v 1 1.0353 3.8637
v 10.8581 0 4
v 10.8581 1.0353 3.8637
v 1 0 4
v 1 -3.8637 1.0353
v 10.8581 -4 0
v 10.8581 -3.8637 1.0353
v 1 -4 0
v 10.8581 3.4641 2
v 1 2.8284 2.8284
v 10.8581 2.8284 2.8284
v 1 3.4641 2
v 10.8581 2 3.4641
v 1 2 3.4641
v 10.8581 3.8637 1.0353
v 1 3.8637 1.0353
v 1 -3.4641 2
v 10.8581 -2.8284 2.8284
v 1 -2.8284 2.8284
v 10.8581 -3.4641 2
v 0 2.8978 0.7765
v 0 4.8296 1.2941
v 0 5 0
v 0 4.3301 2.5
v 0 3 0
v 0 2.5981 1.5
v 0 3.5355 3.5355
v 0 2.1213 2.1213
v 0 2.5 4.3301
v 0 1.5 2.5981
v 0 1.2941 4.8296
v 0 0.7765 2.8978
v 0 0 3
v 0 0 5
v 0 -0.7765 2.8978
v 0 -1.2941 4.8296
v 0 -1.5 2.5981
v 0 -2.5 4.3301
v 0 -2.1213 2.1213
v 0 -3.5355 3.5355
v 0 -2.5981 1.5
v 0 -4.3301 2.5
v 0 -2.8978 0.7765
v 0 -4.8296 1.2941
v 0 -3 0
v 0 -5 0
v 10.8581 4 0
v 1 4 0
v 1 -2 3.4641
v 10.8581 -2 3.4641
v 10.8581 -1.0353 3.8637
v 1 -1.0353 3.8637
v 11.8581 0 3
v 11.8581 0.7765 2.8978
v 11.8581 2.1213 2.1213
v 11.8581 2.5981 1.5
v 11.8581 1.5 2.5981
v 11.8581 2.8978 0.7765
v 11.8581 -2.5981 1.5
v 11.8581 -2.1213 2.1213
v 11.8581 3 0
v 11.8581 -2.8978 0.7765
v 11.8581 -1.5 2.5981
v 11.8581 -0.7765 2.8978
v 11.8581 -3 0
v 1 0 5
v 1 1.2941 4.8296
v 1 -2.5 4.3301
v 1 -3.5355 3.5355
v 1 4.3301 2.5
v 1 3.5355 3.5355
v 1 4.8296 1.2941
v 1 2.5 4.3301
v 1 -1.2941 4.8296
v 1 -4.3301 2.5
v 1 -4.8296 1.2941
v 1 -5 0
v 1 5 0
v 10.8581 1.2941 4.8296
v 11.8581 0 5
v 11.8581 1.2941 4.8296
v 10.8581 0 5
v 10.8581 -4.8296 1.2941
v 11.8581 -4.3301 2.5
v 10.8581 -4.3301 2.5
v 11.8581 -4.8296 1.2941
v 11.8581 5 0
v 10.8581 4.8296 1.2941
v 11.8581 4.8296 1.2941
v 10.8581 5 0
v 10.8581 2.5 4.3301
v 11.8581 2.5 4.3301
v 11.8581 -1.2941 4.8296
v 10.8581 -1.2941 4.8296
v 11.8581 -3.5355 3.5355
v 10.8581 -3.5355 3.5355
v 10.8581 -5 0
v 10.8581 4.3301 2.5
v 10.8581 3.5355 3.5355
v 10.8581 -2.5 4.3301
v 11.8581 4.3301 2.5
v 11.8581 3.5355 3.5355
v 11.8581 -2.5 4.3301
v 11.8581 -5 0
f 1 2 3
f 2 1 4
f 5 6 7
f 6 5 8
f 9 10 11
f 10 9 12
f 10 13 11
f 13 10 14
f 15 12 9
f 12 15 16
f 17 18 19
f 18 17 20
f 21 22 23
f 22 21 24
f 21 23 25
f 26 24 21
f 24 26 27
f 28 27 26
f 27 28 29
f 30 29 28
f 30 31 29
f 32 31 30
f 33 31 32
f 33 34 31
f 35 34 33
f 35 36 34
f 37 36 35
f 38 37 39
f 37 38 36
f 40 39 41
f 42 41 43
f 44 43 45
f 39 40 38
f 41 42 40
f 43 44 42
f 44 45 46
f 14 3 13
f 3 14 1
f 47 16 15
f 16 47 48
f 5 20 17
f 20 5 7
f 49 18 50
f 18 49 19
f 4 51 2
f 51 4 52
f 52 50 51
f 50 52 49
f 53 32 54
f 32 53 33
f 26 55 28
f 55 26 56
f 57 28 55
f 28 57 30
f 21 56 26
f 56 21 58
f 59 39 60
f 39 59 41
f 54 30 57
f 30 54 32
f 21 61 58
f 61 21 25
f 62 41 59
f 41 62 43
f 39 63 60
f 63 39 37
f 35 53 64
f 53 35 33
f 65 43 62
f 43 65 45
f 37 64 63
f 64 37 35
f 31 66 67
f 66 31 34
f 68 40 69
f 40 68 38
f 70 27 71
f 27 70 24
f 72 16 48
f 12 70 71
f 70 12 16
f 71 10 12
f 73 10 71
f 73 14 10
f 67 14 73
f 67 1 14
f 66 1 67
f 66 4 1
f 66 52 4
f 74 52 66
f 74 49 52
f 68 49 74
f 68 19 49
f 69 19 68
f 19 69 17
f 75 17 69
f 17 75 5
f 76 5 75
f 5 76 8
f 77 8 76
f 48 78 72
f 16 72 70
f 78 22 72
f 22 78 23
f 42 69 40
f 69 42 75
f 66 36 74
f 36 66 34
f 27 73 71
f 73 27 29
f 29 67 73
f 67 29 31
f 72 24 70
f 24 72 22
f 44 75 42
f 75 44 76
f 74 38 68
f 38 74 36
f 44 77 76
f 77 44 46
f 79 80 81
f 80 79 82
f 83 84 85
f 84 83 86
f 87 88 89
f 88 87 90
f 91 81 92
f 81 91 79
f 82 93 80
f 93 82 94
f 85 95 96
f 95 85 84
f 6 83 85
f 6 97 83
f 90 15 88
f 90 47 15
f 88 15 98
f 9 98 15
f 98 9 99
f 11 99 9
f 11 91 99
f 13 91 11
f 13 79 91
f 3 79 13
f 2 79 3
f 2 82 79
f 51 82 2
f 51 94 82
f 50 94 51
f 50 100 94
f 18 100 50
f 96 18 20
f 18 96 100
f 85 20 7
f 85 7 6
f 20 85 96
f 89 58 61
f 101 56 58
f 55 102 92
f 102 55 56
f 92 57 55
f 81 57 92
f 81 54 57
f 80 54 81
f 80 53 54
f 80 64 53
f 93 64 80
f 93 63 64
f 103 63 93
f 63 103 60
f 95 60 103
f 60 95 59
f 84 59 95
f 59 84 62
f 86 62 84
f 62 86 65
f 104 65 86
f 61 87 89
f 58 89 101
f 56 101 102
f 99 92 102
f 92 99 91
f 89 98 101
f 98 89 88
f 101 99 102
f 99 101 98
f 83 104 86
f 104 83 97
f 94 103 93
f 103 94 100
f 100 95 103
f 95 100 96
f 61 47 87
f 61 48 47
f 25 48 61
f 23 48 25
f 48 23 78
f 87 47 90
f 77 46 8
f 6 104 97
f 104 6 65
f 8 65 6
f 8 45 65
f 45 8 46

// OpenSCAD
// file: ../build_environments.scad
// build_environments.scad: modules to build level sections
//

module pool(diameter=10.0, wall_height=2.0, step_width=3.0, connections=[])
{
    difference() {
        union() {
        difference() {
            cylinder(h=0.5,r1=diameter+step_width,r2=diameter+step_width,$fn=48);
            translate([0,0,-0.1])
                cylinder(h=0.7,r1=diameter,r2=diameter,$fn=48);
        }
        difference() {
            cylinder(h=wall_height,r1=diameter+step_width+1.0,r2=diameter+step_width+1.0,$fn=48);
            translate([0,0,-0.1])
                cylinder(h=wall_height+0.2,r1=diameter+step_width,r2=diameter+step_width,$fn=48);
        }
        }
    
        for (c = connections)
        {
            rotate([0,90,0]) {
                angle = atan2(c[1],c[0]);
                rotate([-angle,0,0]) {
                    cylinder(h=diameter+5.0,r1=c[2],r2=c[2],$fn=48);
                }
            }
        }
    }
}

module straight(length=10.0, width=2.0, dy1=0.0, dy2=0.0, dz=0.0)
{
    dims = [0, 0, 0, 0, 0, (dz/length)];
    matrix = [
        [ 1, dims[0], dims[1], 0 ],
        [ dims[2], 1, dims[4], 0 ],
        [ dims[5], dims[3], 1, 0 ],
        [ 0, 0, 0, 1 ]
    ];
    multmatrix(matrix)
    difference() {
        translate([dy1,0,0])
        union() {
            rotate([0,90,0]) {
                difference() {
                    cylinder(h=(length-dy1-dy2),r1=width+1.0,r2=width+1.0,$fn=24);
                    translate([0,0,-0.1])
                        cylinder(h=(length-dy1-dy2+0.2),r1=width,r2=width,$fn=24);
                }
                difference() {
                    cylinder(h=1.0,r1=width+2.0,r2=width+2.0,$fn=24);
                    translate([0,0,-0.1])
                        cylinder(h=1.2,r1=width,r2=width,$fn=24);
                }
                translate([0,0,(length-dy1-dy2)-1.0]) {
                    difference() {
                        cylinder(h=1.0,r1=width+2.0,r2=width+2.0,$fn=24);
                        translate([0,0,-0.1])
                            cylinder(h=1.2,r1=width,r2=width,$fn=24);
                    }
                }
            }
        }
        translate([0,0,-(2*width+4.0)/2])
            cube([3*length,3*length,2*width+4.0],center=true);
    }
}

module curve(p0=[0,0], center=[0,0], dir=1, angle=0.0, width=2.0)
{
    radius = sqrt((p0[0]-center[0])*(p0[0]-center[0]) + (p0[1]-center[1])*(p0[1]-center[1]));
    if (dir == 0) {
        difference() {
            rotate([0,0,-90])
            difference() {
                rotate_extrude(angle = angle, convexity = 10, $fn=32)
                    translate([radius, 0, 0])
                        circle(r = width+1.0,$fn=24);
                rotate([0,0,-1.0])
                    rotate_extrude(angle = angle+2.0, convexity = 10, $fn=32)
                        translate([radius, 0, 0])
                            circle(r = width,$fn=24);
            }
            translate([0,0,-(2*width+4.0)/2])
                cube([5*radius,5*radius,2*width+4.0],center=true);
        }
    }
    else {
        difference() {
            rotate([0,0,90])
            difference() {
                rotate_extrude(angle = -angle, convexity = 10, $fn=32)
                    translate([radius, 0, 0])
                        circle(r = width+1.0,$fn=24);
                rotate([0,0,1.0])
                    rotate_extrude(angle = -angle-2.0, convexity = 10, $fn=32)
                        translate([radius, 0, 0])
                            circle(r = width,$fn=24);
            }
            translate([0,0,-(2*width+4.0)/2])
                cube([5*radius,5*radius,2*width+4.0],center=true);
        }
    }

}

// test pool
//pool(diameter=12.0000, wall_height=3.0000, step_width=3.0000, connections=[[0.0000,-26.0000,2.0000], [23.6074,0.0000,2.0000]]);

// test straight, slope
//straight(length=26.0000, width=2.0000, dy1=11.8322, dy2=6.7082, dz=0.0000);
//straight(length=29.1549, width=12.0000, dy1=0.0000, dy2=0.0000, dz=-15.0000);

// test curve
//curve(p0=[23.6074, 0.0000], center=[23.6074, 5.0000], dir=0, angle=60.1011, width=2.0000);
//curve(p0=[33.6426, 12.4219], center=[37.9771, 9.9295], dir=1, angle=120.4627, width=2.0000);
// main file
use <../build_environments.scad>;
straight(length=11.8581, width=3.0000, dy1=0.0000, dy2=0.0000, dz=0.0000);
